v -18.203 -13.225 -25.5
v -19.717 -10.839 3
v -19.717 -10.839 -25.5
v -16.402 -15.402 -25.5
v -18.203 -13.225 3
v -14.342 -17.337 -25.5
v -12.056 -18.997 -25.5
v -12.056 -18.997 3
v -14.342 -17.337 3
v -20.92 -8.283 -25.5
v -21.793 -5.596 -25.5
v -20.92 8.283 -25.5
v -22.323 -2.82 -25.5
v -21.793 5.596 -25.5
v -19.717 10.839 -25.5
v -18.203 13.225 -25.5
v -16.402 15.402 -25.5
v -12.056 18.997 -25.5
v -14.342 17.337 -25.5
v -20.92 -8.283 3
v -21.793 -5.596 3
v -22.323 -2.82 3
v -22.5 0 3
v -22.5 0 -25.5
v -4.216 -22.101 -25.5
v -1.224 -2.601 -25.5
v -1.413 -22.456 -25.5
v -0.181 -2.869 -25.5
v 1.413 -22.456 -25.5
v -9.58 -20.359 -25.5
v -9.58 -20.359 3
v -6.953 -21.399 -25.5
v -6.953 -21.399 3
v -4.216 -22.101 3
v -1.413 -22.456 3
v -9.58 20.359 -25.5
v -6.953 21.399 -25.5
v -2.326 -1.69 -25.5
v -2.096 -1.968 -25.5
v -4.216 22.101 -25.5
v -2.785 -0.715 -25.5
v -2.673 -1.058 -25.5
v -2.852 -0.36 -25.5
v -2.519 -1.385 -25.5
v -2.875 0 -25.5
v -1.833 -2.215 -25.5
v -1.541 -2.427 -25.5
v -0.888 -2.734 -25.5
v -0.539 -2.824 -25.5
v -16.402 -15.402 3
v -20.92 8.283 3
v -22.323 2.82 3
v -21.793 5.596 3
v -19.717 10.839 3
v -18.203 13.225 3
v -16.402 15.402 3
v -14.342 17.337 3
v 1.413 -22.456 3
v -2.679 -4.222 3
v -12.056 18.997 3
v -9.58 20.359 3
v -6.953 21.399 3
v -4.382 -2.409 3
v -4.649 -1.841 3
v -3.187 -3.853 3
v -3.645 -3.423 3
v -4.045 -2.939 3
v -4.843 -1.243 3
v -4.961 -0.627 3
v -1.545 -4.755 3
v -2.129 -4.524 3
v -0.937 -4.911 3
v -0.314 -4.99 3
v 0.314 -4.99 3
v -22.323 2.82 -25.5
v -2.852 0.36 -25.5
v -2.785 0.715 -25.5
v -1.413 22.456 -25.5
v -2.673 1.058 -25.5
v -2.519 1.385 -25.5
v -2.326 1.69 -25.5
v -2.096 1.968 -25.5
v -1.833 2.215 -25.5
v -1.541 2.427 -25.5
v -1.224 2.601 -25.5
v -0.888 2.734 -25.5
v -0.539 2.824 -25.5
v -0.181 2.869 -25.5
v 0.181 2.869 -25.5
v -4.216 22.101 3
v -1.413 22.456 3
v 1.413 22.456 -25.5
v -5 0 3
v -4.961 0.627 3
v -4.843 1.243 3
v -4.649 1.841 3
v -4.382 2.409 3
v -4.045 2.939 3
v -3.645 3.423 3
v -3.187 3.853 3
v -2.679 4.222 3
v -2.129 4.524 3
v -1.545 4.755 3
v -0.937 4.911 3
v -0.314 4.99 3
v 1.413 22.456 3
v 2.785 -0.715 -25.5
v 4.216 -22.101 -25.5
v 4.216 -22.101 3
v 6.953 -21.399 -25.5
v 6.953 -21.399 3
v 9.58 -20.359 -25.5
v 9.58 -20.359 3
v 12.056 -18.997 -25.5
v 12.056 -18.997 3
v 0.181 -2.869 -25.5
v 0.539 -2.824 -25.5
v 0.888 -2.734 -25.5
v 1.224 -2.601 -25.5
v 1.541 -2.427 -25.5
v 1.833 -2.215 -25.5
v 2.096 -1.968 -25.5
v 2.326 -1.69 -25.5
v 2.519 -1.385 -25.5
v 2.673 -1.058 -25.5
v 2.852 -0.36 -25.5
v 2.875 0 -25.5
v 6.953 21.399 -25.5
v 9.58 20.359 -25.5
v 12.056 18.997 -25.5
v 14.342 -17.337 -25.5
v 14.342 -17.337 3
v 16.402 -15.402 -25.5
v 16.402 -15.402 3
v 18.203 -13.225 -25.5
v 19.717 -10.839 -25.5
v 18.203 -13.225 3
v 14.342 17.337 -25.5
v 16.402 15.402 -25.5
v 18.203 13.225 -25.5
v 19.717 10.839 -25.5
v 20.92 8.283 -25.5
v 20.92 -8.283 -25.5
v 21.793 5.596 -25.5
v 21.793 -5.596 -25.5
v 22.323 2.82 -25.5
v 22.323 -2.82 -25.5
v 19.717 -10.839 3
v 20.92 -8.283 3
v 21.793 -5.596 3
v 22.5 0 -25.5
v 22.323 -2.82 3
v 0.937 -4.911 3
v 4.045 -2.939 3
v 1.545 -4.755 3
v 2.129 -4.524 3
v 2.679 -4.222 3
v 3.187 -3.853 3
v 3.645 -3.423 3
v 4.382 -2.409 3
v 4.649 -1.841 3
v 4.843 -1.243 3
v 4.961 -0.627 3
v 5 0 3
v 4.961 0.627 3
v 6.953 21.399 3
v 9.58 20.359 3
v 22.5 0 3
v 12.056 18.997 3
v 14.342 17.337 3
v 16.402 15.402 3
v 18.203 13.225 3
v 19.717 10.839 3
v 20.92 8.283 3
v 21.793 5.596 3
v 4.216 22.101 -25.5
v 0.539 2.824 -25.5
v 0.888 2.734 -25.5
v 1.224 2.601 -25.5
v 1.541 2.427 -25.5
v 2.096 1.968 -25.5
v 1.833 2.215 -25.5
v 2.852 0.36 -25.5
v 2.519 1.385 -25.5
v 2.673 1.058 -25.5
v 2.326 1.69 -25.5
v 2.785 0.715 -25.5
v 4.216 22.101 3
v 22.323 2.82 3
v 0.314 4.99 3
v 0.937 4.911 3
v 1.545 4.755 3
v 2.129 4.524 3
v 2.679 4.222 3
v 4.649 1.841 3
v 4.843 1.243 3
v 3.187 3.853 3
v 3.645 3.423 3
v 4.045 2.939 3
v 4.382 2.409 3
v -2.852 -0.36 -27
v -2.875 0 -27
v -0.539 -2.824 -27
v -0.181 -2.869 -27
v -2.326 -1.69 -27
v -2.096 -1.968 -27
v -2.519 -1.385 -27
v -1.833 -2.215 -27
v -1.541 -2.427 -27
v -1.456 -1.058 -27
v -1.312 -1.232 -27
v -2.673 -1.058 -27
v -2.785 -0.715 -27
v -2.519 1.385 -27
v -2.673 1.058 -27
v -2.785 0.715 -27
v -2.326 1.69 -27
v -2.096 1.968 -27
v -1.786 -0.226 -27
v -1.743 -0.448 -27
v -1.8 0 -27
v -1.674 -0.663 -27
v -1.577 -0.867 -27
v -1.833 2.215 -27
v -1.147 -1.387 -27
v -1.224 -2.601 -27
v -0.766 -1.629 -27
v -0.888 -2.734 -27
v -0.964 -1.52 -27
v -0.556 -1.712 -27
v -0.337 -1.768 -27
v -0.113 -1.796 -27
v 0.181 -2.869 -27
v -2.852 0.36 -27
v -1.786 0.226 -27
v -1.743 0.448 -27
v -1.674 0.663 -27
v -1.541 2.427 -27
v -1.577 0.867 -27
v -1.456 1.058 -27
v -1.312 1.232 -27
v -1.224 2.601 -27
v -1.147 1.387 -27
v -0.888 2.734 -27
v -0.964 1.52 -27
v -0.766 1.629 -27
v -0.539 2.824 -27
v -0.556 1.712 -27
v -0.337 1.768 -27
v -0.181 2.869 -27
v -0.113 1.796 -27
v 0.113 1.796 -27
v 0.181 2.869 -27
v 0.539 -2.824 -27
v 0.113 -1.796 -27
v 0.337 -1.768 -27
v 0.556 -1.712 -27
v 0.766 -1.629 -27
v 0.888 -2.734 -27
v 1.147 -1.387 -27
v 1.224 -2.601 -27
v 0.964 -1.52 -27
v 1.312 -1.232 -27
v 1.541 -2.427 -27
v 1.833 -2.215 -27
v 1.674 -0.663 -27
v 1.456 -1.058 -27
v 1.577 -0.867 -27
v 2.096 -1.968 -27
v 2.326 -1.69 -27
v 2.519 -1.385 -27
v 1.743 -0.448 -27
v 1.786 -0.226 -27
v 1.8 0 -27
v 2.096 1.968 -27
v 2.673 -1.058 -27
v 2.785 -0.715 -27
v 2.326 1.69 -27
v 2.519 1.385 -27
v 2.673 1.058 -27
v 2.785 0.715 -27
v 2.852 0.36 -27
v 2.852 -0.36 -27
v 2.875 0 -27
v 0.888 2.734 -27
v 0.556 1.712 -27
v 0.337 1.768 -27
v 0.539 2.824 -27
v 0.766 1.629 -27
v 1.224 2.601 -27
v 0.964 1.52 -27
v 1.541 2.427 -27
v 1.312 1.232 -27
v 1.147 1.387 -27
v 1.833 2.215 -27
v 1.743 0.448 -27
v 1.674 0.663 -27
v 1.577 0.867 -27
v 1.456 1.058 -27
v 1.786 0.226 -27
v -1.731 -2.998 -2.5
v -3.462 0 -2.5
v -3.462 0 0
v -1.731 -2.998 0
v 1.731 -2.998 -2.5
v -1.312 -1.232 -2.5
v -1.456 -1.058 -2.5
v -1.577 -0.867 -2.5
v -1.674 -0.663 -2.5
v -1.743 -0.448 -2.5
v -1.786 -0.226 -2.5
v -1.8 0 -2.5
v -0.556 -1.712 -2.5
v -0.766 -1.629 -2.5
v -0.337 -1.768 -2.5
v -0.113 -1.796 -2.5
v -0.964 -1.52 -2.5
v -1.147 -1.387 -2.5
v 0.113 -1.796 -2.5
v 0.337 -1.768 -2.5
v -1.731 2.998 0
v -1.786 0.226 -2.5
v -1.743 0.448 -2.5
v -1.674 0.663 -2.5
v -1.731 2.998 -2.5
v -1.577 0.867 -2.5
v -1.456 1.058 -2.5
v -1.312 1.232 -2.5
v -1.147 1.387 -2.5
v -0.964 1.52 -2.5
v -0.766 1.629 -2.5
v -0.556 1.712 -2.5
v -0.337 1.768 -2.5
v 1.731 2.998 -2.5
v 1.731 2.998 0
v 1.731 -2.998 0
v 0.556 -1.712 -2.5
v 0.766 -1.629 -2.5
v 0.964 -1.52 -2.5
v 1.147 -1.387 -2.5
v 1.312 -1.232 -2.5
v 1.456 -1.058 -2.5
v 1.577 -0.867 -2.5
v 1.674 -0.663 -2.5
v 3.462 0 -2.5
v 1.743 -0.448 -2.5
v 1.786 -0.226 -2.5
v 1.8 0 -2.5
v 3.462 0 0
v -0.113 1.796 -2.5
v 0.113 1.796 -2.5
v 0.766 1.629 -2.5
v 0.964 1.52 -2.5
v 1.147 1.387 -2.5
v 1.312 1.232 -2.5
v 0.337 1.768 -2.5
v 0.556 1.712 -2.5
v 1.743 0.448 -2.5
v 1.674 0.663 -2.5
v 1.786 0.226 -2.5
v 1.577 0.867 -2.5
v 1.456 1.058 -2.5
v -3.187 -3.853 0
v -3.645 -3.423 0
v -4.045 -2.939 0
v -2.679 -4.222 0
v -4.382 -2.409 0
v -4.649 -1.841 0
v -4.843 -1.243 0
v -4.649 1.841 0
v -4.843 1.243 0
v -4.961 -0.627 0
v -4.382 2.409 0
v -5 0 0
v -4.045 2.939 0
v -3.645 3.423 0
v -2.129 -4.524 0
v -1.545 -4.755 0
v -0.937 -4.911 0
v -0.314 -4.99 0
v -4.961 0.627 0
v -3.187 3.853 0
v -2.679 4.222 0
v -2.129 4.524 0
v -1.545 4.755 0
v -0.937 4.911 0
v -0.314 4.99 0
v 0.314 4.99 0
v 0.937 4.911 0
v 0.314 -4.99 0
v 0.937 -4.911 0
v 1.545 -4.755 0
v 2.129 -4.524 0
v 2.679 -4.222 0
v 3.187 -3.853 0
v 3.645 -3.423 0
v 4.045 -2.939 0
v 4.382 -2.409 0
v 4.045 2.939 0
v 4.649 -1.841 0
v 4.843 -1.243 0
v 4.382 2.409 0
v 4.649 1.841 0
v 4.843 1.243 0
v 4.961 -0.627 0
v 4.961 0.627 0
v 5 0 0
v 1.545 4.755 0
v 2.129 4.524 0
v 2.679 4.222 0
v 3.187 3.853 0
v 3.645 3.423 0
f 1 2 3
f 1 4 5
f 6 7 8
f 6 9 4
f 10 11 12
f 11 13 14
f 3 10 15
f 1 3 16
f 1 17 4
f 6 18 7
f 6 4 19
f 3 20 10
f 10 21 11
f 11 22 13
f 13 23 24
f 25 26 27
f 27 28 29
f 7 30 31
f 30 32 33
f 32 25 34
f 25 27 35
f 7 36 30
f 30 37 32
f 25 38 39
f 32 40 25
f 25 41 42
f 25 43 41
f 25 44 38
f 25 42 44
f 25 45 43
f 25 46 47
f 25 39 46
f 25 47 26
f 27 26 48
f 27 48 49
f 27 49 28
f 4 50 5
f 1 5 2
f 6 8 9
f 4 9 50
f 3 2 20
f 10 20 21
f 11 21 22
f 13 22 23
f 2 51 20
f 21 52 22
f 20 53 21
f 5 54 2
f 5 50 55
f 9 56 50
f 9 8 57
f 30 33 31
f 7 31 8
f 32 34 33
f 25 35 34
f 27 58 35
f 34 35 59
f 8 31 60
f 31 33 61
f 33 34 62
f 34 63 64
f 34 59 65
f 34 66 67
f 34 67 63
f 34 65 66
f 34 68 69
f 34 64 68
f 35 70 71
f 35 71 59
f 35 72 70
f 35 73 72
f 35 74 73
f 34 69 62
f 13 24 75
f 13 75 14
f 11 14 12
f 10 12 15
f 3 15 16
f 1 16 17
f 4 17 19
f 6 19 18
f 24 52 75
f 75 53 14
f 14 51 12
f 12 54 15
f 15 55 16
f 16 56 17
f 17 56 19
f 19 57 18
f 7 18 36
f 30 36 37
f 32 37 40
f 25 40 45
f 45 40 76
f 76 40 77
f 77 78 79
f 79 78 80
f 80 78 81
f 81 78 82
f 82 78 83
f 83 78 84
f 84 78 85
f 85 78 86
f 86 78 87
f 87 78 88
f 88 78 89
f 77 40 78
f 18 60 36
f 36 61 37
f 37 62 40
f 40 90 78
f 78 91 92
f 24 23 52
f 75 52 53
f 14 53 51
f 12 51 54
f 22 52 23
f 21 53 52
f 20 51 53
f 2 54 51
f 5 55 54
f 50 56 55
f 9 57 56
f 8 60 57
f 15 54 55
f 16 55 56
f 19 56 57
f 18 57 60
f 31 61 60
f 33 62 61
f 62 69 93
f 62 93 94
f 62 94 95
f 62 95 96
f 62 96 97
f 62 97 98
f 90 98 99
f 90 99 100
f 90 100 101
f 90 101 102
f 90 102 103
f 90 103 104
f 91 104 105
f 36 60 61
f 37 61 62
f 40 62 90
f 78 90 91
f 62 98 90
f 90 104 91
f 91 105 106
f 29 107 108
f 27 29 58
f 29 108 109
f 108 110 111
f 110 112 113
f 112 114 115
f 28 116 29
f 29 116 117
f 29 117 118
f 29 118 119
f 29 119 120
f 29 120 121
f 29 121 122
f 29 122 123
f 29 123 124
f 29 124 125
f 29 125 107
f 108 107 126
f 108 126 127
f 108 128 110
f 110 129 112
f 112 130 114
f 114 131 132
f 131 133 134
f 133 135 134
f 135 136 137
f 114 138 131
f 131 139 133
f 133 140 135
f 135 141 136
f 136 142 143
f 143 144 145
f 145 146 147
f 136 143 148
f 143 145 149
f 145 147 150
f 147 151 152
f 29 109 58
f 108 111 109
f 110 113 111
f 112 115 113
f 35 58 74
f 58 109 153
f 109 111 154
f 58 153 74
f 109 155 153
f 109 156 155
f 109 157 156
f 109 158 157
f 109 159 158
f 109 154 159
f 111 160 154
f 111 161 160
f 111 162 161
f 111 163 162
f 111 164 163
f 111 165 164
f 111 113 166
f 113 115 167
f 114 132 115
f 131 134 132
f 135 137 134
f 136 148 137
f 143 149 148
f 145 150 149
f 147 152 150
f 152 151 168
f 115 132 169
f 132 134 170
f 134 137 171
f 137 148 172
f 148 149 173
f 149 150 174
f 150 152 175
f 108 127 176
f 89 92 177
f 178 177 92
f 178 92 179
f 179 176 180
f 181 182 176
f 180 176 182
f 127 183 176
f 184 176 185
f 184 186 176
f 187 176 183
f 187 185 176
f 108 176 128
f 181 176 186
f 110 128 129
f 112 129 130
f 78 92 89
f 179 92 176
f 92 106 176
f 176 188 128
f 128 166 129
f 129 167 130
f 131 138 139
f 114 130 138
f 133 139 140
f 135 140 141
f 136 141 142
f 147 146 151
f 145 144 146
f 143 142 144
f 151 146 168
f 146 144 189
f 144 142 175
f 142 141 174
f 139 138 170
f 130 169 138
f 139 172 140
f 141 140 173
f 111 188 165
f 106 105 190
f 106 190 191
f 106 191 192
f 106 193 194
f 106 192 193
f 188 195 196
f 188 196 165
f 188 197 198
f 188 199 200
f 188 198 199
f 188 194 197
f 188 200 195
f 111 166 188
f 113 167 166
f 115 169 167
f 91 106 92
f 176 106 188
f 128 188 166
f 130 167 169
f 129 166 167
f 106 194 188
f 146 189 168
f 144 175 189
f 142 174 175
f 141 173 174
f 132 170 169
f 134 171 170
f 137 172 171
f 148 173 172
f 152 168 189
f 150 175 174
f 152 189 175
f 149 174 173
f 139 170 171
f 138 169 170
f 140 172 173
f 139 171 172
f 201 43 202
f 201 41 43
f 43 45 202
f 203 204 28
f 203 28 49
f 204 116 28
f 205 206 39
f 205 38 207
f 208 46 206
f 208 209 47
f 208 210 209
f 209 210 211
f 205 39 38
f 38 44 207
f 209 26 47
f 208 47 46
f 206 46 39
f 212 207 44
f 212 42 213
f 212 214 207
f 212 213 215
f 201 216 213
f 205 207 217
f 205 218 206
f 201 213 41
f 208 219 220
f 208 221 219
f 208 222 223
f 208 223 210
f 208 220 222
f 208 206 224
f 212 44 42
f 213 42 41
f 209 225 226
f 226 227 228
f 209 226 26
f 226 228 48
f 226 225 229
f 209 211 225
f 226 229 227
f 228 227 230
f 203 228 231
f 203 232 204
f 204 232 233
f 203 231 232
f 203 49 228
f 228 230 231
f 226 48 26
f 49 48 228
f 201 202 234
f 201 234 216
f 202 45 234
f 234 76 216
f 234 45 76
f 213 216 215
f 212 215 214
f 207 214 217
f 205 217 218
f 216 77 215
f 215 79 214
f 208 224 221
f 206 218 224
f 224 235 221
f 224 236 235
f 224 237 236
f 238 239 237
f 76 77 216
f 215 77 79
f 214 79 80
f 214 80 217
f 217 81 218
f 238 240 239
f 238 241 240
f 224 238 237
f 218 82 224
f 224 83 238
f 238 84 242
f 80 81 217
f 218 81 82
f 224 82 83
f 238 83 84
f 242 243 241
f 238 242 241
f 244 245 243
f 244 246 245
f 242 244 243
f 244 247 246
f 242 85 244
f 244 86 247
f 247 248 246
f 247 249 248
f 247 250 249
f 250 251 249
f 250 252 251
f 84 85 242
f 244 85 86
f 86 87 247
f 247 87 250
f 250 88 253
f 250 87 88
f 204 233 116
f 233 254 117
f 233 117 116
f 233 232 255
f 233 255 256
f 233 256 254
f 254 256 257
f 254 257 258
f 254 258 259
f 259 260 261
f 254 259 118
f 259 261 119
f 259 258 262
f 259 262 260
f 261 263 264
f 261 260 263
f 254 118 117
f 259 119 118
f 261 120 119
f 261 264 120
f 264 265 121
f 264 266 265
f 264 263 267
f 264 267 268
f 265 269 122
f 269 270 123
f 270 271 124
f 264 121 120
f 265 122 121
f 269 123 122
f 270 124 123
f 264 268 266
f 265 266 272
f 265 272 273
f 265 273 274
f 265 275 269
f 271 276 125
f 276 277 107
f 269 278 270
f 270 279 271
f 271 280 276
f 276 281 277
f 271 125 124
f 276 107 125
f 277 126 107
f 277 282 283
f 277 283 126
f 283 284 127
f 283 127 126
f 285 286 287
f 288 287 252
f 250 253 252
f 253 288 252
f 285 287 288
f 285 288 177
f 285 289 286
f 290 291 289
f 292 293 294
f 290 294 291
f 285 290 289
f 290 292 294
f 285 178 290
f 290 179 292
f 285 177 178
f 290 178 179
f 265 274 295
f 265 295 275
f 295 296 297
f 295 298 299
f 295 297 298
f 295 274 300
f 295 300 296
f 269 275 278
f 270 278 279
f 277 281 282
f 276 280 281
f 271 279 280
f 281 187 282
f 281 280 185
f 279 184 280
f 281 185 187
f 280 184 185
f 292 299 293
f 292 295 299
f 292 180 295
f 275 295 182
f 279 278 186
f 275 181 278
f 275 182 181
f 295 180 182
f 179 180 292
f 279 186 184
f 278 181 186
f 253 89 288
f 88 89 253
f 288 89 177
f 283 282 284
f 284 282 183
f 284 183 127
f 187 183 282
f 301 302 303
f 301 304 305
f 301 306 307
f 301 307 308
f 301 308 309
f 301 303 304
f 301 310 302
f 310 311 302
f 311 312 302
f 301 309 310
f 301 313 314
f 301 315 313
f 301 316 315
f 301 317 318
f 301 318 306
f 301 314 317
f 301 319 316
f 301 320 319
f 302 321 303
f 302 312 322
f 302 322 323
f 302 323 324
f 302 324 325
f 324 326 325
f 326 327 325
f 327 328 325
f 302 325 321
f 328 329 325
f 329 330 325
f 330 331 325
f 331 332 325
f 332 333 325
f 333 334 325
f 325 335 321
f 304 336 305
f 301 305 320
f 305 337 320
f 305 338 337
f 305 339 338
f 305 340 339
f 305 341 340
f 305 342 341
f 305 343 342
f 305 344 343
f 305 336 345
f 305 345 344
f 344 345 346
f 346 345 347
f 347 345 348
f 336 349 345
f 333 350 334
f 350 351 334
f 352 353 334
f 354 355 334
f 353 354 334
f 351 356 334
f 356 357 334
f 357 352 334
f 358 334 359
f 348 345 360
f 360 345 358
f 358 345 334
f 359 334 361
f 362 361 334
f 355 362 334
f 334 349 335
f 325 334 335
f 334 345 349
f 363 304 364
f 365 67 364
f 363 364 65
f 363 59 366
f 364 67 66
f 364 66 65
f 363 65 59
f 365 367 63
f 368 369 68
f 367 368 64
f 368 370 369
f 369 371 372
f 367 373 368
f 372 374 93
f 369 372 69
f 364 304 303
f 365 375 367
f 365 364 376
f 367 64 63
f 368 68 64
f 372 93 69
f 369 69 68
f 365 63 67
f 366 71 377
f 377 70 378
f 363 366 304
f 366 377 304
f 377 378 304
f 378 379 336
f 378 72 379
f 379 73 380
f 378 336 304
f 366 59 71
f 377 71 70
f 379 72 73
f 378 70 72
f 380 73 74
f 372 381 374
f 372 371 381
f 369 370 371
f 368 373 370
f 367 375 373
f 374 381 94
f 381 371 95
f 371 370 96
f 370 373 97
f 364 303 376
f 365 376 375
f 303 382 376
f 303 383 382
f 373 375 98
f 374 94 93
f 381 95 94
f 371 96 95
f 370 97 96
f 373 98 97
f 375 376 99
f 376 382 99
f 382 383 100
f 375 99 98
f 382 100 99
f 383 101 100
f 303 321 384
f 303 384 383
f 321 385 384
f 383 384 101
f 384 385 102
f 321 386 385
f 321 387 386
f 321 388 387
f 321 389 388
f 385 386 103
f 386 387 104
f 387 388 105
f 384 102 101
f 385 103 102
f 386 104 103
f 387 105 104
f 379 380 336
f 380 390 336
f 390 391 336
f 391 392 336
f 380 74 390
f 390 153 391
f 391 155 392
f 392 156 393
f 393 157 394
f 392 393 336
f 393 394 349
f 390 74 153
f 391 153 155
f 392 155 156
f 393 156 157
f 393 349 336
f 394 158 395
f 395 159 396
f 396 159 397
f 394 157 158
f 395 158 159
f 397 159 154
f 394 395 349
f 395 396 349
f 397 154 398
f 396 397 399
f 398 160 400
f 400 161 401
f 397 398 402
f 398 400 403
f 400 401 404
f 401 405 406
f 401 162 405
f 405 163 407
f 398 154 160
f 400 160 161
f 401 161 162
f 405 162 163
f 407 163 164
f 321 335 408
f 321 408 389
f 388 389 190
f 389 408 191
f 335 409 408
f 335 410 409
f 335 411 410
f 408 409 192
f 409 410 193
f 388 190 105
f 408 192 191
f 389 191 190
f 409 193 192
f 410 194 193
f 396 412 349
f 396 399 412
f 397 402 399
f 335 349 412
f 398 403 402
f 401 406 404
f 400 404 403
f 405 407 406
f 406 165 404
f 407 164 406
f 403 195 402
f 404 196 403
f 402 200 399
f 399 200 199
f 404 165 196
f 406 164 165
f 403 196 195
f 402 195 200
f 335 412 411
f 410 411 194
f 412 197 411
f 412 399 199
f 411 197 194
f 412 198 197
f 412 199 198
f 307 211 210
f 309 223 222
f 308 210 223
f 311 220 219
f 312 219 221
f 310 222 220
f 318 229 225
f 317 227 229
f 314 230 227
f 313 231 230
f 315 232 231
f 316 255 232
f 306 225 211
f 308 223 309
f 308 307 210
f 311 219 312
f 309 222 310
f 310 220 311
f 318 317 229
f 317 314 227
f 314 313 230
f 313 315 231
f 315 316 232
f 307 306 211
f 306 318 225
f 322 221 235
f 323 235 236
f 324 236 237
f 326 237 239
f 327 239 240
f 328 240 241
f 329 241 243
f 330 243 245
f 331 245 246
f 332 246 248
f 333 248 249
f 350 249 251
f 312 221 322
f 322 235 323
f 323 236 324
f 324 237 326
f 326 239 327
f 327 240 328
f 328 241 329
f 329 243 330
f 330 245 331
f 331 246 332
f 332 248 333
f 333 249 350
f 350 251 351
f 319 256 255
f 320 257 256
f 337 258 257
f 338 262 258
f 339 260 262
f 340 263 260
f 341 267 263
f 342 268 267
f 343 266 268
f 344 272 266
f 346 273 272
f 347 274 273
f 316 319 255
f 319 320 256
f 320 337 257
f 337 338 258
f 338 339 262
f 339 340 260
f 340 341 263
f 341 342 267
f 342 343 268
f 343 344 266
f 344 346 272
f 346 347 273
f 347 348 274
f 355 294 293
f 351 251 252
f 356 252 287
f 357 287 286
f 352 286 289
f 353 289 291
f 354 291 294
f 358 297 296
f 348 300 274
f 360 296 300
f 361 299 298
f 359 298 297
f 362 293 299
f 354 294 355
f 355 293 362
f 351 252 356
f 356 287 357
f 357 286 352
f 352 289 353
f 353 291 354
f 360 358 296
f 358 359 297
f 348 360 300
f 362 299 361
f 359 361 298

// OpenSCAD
$fn = 50;


difference() {
	union() {
		translate(v = [0, 0, -25.5000000000]) {
			cylinder(h = 28.5000000000, r = 22.5000000000);
		}
		#translate(v = [0, 0, -27.0000000000]) {
			cylinder(h = 27, r = 2.8750000000);
		}
	}
	union() {
		translate(v = [0, 0, 0]) {
			rotate(a = [0, 0, 0]) {
				difference() {
					union() {
						translate(v = [0, 0, -2.5000000000]) {
							linear_extrude(height = 2.5000000000) {
								polygon(points = [[3.4620000000, 0.0000000000], [1.7310000000, 2.9981799479], [-1.7310000000, 2.9981799479], [-3.4620000000, 0.0000000000], [-1.7310000000, -2.9981799479], [1.7310000000, -2.9981799479]]);
							}
						}
					}
					union();
				}
			}
		}
		#cylinder(h = 3, r = 5.0000000000);
		#translate(v = [0, 0, -100.0000000000]) {
			cylinder(h = 200, r = 1.8000000000);
		}
	}
}
